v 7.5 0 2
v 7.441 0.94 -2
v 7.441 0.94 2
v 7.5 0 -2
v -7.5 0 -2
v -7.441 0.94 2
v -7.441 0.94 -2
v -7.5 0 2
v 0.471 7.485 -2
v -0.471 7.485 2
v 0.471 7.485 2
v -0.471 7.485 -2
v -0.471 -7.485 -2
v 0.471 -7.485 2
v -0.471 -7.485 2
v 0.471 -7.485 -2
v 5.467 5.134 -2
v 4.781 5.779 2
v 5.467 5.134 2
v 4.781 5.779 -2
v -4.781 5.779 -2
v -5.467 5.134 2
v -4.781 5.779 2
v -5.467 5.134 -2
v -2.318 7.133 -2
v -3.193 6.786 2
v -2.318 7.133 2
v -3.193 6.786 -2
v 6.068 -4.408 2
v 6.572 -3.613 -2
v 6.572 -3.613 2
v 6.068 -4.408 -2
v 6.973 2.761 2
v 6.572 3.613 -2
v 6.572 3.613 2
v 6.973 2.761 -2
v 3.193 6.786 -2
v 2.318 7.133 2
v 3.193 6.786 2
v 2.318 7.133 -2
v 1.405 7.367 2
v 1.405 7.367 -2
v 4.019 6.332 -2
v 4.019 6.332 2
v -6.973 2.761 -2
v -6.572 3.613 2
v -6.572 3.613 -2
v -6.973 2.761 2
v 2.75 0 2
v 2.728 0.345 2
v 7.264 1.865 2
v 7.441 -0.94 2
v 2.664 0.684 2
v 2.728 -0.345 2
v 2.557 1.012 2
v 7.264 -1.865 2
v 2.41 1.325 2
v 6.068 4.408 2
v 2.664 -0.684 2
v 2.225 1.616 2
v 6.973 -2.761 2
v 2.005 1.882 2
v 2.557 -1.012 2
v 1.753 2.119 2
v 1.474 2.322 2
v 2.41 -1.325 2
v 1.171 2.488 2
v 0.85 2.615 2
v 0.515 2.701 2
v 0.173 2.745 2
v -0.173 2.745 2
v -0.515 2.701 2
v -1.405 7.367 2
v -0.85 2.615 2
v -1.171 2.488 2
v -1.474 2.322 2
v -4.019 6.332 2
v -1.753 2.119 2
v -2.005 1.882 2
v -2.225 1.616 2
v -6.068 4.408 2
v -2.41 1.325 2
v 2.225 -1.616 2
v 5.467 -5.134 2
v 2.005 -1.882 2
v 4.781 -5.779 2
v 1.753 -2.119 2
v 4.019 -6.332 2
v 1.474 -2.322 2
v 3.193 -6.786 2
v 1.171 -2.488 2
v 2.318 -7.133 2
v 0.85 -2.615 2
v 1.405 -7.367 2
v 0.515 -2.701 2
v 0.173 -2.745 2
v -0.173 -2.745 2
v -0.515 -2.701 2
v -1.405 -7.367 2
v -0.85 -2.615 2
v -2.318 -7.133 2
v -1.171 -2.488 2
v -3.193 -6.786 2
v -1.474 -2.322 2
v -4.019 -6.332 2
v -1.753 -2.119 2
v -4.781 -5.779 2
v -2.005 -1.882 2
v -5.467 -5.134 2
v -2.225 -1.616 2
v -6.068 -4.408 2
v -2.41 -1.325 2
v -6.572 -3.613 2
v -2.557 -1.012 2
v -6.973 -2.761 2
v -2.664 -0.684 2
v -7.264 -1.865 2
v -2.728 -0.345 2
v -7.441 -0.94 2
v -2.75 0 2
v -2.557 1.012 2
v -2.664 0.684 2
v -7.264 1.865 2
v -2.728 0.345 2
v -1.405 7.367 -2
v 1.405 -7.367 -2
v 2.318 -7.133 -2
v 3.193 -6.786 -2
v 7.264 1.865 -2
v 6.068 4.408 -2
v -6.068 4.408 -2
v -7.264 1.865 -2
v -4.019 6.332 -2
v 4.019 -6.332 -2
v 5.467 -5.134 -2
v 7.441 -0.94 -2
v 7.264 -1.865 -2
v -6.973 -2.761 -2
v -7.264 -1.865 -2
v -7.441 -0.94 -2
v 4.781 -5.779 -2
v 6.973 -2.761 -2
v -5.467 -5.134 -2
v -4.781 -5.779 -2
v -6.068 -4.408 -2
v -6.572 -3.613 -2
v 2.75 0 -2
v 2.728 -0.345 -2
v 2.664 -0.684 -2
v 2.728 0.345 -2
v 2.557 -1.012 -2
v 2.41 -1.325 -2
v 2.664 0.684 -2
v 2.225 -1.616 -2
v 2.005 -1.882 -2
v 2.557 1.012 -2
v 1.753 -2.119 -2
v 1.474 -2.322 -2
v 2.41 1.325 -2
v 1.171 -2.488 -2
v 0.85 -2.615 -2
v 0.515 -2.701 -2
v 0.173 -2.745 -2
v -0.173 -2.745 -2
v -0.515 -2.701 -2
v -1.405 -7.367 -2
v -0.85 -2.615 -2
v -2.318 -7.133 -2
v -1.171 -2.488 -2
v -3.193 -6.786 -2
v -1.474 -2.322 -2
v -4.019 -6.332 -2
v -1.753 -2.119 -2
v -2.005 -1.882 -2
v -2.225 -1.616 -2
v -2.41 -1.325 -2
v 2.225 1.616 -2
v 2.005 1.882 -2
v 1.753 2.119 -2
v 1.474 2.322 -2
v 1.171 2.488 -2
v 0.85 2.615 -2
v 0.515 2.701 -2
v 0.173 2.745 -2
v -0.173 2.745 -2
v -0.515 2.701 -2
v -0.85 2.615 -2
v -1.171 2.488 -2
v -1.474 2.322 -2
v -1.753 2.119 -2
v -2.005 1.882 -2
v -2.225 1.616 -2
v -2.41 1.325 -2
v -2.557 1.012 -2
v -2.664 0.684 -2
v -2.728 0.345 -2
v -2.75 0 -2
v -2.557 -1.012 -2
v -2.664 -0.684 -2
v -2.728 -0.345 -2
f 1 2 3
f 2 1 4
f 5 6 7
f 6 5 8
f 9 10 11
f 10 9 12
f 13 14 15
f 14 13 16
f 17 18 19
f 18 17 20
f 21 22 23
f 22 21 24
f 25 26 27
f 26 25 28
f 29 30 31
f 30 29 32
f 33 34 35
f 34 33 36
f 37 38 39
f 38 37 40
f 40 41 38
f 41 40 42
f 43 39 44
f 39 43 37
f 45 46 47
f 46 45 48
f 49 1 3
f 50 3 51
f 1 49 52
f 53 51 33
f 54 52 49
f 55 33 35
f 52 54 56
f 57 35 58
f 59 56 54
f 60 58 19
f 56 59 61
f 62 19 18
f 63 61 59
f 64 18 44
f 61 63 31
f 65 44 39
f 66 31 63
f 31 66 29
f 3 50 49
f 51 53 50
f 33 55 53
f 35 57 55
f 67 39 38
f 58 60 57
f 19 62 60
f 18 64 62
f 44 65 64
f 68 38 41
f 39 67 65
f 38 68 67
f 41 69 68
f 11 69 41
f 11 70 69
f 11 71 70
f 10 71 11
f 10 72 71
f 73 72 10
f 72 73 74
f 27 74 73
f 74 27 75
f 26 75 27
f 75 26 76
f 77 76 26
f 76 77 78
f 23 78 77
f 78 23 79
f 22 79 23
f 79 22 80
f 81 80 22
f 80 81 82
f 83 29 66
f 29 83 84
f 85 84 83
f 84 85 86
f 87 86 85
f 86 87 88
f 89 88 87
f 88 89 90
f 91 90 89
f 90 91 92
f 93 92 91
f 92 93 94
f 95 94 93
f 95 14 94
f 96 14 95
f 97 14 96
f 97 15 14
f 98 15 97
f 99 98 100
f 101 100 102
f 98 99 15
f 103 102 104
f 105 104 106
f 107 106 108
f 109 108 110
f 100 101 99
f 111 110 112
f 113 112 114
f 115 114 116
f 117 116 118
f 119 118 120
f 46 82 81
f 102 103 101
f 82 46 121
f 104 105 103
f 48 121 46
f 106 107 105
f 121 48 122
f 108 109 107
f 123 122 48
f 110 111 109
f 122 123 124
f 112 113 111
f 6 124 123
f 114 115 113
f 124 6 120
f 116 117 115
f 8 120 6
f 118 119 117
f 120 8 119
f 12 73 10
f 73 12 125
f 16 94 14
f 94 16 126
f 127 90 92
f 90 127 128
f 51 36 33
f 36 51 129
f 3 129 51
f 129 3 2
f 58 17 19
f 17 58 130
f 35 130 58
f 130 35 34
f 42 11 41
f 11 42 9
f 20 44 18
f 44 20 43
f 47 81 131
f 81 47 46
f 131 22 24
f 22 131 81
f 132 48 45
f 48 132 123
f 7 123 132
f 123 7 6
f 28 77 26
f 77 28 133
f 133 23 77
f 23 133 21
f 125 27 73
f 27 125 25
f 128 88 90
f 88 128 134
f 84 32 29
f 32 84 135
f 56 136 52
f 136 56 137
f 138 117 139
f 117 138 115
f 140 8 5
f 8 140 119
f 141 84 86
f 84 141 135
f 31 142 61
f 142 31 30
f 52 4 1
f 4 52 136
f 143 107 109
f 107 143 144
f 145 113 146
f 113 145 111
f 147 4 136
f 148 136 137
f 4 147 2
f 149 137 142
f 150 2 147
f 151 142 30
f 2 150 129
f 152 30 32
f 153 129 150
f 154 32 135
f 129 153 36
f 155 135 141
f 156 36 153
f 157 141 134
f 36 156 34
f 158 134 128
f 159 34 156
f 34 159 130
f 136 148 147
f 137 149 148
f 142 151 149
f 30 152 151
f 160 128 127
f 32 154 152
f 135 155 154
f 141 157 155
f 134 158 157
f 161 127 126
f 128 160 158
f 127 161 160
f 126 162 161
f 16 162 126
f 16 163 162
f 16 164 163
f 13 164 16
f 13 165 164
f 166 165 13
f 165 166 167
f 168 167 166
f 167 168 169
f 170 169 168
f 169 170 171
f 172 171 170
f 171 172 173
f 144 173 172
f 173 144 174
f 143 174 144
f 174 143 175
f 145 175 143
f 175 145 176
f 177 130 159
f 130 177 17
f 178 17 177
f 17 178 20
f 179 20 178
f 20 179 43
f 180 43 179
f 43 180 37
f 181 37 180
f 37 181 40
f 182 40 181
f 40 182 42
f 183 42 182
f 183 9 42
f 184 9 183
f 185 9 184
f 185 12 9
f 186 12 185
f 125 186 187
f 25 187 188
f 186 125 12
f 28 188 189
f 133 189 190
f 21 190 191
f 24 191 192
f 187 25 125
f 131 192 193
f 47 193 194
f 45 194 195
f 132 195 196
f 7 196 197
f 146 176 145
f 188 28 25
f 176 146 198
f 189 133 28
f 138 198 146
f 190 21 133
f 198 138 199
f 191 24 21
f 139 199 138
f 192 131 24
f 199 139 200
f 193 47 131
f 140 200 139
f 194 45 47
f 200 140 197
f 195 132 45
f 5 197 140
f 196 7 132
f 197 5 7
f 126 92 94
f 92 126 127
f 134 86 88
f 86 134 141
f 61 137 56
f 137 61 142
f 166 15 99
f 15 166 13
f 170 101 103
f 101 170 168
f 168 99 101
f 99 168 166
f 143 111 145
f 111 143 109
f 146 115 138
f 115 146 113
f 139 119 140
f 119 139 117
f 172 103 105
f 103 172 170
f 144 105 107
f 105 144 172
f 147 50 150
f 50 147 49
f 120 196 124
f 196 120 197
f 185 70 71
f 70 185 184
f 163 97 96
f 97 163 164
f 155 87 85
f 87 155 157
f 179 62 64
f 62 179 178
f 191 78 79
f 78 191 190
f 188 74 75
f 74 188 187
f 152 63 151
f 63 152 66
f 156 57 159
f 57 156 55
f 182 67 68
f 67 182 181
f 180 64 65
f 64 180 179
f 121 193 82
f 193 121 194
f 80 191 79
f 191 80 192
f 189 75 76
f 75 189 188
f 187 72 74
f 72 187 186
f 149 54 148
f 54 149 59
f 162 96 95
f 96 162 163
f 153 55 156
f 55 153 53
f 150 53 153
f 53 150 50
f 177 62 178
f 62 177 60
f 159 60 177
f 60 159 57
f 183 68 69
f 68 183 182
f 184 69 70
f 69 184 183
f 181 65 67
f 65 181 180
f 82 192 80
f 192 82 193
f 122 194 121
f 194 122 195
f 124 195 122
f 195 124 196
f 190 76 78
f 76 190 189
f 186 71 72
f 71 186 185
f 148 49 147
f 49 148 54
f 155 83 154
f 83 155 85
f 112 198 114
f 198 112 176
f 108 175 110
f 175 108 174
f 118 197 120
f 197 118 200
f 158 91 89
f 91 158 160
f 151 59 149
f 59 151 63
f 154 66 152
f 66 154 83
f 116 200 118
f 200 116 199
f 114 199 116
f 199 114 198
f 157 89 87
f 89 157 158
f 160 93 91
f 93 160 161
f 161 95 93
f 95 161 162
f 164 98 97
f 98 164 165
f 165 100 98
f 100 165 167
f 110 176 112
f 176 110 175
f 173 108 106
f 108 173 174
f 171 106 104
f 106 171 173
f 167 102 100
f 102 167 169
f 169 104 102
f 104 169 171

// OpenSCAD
$fn = 50;


difference() {
	union() {
		translate(v = [0, 0, -2.0000000000]) {
			cylinder(h = 4, r = 7.5000000000);
		}
	}
	union() {
		translate(v = [0, 0, -100.0000000000]) {
			cylinder(h = 200, r = 2.7500000000);
		}
	}
}
